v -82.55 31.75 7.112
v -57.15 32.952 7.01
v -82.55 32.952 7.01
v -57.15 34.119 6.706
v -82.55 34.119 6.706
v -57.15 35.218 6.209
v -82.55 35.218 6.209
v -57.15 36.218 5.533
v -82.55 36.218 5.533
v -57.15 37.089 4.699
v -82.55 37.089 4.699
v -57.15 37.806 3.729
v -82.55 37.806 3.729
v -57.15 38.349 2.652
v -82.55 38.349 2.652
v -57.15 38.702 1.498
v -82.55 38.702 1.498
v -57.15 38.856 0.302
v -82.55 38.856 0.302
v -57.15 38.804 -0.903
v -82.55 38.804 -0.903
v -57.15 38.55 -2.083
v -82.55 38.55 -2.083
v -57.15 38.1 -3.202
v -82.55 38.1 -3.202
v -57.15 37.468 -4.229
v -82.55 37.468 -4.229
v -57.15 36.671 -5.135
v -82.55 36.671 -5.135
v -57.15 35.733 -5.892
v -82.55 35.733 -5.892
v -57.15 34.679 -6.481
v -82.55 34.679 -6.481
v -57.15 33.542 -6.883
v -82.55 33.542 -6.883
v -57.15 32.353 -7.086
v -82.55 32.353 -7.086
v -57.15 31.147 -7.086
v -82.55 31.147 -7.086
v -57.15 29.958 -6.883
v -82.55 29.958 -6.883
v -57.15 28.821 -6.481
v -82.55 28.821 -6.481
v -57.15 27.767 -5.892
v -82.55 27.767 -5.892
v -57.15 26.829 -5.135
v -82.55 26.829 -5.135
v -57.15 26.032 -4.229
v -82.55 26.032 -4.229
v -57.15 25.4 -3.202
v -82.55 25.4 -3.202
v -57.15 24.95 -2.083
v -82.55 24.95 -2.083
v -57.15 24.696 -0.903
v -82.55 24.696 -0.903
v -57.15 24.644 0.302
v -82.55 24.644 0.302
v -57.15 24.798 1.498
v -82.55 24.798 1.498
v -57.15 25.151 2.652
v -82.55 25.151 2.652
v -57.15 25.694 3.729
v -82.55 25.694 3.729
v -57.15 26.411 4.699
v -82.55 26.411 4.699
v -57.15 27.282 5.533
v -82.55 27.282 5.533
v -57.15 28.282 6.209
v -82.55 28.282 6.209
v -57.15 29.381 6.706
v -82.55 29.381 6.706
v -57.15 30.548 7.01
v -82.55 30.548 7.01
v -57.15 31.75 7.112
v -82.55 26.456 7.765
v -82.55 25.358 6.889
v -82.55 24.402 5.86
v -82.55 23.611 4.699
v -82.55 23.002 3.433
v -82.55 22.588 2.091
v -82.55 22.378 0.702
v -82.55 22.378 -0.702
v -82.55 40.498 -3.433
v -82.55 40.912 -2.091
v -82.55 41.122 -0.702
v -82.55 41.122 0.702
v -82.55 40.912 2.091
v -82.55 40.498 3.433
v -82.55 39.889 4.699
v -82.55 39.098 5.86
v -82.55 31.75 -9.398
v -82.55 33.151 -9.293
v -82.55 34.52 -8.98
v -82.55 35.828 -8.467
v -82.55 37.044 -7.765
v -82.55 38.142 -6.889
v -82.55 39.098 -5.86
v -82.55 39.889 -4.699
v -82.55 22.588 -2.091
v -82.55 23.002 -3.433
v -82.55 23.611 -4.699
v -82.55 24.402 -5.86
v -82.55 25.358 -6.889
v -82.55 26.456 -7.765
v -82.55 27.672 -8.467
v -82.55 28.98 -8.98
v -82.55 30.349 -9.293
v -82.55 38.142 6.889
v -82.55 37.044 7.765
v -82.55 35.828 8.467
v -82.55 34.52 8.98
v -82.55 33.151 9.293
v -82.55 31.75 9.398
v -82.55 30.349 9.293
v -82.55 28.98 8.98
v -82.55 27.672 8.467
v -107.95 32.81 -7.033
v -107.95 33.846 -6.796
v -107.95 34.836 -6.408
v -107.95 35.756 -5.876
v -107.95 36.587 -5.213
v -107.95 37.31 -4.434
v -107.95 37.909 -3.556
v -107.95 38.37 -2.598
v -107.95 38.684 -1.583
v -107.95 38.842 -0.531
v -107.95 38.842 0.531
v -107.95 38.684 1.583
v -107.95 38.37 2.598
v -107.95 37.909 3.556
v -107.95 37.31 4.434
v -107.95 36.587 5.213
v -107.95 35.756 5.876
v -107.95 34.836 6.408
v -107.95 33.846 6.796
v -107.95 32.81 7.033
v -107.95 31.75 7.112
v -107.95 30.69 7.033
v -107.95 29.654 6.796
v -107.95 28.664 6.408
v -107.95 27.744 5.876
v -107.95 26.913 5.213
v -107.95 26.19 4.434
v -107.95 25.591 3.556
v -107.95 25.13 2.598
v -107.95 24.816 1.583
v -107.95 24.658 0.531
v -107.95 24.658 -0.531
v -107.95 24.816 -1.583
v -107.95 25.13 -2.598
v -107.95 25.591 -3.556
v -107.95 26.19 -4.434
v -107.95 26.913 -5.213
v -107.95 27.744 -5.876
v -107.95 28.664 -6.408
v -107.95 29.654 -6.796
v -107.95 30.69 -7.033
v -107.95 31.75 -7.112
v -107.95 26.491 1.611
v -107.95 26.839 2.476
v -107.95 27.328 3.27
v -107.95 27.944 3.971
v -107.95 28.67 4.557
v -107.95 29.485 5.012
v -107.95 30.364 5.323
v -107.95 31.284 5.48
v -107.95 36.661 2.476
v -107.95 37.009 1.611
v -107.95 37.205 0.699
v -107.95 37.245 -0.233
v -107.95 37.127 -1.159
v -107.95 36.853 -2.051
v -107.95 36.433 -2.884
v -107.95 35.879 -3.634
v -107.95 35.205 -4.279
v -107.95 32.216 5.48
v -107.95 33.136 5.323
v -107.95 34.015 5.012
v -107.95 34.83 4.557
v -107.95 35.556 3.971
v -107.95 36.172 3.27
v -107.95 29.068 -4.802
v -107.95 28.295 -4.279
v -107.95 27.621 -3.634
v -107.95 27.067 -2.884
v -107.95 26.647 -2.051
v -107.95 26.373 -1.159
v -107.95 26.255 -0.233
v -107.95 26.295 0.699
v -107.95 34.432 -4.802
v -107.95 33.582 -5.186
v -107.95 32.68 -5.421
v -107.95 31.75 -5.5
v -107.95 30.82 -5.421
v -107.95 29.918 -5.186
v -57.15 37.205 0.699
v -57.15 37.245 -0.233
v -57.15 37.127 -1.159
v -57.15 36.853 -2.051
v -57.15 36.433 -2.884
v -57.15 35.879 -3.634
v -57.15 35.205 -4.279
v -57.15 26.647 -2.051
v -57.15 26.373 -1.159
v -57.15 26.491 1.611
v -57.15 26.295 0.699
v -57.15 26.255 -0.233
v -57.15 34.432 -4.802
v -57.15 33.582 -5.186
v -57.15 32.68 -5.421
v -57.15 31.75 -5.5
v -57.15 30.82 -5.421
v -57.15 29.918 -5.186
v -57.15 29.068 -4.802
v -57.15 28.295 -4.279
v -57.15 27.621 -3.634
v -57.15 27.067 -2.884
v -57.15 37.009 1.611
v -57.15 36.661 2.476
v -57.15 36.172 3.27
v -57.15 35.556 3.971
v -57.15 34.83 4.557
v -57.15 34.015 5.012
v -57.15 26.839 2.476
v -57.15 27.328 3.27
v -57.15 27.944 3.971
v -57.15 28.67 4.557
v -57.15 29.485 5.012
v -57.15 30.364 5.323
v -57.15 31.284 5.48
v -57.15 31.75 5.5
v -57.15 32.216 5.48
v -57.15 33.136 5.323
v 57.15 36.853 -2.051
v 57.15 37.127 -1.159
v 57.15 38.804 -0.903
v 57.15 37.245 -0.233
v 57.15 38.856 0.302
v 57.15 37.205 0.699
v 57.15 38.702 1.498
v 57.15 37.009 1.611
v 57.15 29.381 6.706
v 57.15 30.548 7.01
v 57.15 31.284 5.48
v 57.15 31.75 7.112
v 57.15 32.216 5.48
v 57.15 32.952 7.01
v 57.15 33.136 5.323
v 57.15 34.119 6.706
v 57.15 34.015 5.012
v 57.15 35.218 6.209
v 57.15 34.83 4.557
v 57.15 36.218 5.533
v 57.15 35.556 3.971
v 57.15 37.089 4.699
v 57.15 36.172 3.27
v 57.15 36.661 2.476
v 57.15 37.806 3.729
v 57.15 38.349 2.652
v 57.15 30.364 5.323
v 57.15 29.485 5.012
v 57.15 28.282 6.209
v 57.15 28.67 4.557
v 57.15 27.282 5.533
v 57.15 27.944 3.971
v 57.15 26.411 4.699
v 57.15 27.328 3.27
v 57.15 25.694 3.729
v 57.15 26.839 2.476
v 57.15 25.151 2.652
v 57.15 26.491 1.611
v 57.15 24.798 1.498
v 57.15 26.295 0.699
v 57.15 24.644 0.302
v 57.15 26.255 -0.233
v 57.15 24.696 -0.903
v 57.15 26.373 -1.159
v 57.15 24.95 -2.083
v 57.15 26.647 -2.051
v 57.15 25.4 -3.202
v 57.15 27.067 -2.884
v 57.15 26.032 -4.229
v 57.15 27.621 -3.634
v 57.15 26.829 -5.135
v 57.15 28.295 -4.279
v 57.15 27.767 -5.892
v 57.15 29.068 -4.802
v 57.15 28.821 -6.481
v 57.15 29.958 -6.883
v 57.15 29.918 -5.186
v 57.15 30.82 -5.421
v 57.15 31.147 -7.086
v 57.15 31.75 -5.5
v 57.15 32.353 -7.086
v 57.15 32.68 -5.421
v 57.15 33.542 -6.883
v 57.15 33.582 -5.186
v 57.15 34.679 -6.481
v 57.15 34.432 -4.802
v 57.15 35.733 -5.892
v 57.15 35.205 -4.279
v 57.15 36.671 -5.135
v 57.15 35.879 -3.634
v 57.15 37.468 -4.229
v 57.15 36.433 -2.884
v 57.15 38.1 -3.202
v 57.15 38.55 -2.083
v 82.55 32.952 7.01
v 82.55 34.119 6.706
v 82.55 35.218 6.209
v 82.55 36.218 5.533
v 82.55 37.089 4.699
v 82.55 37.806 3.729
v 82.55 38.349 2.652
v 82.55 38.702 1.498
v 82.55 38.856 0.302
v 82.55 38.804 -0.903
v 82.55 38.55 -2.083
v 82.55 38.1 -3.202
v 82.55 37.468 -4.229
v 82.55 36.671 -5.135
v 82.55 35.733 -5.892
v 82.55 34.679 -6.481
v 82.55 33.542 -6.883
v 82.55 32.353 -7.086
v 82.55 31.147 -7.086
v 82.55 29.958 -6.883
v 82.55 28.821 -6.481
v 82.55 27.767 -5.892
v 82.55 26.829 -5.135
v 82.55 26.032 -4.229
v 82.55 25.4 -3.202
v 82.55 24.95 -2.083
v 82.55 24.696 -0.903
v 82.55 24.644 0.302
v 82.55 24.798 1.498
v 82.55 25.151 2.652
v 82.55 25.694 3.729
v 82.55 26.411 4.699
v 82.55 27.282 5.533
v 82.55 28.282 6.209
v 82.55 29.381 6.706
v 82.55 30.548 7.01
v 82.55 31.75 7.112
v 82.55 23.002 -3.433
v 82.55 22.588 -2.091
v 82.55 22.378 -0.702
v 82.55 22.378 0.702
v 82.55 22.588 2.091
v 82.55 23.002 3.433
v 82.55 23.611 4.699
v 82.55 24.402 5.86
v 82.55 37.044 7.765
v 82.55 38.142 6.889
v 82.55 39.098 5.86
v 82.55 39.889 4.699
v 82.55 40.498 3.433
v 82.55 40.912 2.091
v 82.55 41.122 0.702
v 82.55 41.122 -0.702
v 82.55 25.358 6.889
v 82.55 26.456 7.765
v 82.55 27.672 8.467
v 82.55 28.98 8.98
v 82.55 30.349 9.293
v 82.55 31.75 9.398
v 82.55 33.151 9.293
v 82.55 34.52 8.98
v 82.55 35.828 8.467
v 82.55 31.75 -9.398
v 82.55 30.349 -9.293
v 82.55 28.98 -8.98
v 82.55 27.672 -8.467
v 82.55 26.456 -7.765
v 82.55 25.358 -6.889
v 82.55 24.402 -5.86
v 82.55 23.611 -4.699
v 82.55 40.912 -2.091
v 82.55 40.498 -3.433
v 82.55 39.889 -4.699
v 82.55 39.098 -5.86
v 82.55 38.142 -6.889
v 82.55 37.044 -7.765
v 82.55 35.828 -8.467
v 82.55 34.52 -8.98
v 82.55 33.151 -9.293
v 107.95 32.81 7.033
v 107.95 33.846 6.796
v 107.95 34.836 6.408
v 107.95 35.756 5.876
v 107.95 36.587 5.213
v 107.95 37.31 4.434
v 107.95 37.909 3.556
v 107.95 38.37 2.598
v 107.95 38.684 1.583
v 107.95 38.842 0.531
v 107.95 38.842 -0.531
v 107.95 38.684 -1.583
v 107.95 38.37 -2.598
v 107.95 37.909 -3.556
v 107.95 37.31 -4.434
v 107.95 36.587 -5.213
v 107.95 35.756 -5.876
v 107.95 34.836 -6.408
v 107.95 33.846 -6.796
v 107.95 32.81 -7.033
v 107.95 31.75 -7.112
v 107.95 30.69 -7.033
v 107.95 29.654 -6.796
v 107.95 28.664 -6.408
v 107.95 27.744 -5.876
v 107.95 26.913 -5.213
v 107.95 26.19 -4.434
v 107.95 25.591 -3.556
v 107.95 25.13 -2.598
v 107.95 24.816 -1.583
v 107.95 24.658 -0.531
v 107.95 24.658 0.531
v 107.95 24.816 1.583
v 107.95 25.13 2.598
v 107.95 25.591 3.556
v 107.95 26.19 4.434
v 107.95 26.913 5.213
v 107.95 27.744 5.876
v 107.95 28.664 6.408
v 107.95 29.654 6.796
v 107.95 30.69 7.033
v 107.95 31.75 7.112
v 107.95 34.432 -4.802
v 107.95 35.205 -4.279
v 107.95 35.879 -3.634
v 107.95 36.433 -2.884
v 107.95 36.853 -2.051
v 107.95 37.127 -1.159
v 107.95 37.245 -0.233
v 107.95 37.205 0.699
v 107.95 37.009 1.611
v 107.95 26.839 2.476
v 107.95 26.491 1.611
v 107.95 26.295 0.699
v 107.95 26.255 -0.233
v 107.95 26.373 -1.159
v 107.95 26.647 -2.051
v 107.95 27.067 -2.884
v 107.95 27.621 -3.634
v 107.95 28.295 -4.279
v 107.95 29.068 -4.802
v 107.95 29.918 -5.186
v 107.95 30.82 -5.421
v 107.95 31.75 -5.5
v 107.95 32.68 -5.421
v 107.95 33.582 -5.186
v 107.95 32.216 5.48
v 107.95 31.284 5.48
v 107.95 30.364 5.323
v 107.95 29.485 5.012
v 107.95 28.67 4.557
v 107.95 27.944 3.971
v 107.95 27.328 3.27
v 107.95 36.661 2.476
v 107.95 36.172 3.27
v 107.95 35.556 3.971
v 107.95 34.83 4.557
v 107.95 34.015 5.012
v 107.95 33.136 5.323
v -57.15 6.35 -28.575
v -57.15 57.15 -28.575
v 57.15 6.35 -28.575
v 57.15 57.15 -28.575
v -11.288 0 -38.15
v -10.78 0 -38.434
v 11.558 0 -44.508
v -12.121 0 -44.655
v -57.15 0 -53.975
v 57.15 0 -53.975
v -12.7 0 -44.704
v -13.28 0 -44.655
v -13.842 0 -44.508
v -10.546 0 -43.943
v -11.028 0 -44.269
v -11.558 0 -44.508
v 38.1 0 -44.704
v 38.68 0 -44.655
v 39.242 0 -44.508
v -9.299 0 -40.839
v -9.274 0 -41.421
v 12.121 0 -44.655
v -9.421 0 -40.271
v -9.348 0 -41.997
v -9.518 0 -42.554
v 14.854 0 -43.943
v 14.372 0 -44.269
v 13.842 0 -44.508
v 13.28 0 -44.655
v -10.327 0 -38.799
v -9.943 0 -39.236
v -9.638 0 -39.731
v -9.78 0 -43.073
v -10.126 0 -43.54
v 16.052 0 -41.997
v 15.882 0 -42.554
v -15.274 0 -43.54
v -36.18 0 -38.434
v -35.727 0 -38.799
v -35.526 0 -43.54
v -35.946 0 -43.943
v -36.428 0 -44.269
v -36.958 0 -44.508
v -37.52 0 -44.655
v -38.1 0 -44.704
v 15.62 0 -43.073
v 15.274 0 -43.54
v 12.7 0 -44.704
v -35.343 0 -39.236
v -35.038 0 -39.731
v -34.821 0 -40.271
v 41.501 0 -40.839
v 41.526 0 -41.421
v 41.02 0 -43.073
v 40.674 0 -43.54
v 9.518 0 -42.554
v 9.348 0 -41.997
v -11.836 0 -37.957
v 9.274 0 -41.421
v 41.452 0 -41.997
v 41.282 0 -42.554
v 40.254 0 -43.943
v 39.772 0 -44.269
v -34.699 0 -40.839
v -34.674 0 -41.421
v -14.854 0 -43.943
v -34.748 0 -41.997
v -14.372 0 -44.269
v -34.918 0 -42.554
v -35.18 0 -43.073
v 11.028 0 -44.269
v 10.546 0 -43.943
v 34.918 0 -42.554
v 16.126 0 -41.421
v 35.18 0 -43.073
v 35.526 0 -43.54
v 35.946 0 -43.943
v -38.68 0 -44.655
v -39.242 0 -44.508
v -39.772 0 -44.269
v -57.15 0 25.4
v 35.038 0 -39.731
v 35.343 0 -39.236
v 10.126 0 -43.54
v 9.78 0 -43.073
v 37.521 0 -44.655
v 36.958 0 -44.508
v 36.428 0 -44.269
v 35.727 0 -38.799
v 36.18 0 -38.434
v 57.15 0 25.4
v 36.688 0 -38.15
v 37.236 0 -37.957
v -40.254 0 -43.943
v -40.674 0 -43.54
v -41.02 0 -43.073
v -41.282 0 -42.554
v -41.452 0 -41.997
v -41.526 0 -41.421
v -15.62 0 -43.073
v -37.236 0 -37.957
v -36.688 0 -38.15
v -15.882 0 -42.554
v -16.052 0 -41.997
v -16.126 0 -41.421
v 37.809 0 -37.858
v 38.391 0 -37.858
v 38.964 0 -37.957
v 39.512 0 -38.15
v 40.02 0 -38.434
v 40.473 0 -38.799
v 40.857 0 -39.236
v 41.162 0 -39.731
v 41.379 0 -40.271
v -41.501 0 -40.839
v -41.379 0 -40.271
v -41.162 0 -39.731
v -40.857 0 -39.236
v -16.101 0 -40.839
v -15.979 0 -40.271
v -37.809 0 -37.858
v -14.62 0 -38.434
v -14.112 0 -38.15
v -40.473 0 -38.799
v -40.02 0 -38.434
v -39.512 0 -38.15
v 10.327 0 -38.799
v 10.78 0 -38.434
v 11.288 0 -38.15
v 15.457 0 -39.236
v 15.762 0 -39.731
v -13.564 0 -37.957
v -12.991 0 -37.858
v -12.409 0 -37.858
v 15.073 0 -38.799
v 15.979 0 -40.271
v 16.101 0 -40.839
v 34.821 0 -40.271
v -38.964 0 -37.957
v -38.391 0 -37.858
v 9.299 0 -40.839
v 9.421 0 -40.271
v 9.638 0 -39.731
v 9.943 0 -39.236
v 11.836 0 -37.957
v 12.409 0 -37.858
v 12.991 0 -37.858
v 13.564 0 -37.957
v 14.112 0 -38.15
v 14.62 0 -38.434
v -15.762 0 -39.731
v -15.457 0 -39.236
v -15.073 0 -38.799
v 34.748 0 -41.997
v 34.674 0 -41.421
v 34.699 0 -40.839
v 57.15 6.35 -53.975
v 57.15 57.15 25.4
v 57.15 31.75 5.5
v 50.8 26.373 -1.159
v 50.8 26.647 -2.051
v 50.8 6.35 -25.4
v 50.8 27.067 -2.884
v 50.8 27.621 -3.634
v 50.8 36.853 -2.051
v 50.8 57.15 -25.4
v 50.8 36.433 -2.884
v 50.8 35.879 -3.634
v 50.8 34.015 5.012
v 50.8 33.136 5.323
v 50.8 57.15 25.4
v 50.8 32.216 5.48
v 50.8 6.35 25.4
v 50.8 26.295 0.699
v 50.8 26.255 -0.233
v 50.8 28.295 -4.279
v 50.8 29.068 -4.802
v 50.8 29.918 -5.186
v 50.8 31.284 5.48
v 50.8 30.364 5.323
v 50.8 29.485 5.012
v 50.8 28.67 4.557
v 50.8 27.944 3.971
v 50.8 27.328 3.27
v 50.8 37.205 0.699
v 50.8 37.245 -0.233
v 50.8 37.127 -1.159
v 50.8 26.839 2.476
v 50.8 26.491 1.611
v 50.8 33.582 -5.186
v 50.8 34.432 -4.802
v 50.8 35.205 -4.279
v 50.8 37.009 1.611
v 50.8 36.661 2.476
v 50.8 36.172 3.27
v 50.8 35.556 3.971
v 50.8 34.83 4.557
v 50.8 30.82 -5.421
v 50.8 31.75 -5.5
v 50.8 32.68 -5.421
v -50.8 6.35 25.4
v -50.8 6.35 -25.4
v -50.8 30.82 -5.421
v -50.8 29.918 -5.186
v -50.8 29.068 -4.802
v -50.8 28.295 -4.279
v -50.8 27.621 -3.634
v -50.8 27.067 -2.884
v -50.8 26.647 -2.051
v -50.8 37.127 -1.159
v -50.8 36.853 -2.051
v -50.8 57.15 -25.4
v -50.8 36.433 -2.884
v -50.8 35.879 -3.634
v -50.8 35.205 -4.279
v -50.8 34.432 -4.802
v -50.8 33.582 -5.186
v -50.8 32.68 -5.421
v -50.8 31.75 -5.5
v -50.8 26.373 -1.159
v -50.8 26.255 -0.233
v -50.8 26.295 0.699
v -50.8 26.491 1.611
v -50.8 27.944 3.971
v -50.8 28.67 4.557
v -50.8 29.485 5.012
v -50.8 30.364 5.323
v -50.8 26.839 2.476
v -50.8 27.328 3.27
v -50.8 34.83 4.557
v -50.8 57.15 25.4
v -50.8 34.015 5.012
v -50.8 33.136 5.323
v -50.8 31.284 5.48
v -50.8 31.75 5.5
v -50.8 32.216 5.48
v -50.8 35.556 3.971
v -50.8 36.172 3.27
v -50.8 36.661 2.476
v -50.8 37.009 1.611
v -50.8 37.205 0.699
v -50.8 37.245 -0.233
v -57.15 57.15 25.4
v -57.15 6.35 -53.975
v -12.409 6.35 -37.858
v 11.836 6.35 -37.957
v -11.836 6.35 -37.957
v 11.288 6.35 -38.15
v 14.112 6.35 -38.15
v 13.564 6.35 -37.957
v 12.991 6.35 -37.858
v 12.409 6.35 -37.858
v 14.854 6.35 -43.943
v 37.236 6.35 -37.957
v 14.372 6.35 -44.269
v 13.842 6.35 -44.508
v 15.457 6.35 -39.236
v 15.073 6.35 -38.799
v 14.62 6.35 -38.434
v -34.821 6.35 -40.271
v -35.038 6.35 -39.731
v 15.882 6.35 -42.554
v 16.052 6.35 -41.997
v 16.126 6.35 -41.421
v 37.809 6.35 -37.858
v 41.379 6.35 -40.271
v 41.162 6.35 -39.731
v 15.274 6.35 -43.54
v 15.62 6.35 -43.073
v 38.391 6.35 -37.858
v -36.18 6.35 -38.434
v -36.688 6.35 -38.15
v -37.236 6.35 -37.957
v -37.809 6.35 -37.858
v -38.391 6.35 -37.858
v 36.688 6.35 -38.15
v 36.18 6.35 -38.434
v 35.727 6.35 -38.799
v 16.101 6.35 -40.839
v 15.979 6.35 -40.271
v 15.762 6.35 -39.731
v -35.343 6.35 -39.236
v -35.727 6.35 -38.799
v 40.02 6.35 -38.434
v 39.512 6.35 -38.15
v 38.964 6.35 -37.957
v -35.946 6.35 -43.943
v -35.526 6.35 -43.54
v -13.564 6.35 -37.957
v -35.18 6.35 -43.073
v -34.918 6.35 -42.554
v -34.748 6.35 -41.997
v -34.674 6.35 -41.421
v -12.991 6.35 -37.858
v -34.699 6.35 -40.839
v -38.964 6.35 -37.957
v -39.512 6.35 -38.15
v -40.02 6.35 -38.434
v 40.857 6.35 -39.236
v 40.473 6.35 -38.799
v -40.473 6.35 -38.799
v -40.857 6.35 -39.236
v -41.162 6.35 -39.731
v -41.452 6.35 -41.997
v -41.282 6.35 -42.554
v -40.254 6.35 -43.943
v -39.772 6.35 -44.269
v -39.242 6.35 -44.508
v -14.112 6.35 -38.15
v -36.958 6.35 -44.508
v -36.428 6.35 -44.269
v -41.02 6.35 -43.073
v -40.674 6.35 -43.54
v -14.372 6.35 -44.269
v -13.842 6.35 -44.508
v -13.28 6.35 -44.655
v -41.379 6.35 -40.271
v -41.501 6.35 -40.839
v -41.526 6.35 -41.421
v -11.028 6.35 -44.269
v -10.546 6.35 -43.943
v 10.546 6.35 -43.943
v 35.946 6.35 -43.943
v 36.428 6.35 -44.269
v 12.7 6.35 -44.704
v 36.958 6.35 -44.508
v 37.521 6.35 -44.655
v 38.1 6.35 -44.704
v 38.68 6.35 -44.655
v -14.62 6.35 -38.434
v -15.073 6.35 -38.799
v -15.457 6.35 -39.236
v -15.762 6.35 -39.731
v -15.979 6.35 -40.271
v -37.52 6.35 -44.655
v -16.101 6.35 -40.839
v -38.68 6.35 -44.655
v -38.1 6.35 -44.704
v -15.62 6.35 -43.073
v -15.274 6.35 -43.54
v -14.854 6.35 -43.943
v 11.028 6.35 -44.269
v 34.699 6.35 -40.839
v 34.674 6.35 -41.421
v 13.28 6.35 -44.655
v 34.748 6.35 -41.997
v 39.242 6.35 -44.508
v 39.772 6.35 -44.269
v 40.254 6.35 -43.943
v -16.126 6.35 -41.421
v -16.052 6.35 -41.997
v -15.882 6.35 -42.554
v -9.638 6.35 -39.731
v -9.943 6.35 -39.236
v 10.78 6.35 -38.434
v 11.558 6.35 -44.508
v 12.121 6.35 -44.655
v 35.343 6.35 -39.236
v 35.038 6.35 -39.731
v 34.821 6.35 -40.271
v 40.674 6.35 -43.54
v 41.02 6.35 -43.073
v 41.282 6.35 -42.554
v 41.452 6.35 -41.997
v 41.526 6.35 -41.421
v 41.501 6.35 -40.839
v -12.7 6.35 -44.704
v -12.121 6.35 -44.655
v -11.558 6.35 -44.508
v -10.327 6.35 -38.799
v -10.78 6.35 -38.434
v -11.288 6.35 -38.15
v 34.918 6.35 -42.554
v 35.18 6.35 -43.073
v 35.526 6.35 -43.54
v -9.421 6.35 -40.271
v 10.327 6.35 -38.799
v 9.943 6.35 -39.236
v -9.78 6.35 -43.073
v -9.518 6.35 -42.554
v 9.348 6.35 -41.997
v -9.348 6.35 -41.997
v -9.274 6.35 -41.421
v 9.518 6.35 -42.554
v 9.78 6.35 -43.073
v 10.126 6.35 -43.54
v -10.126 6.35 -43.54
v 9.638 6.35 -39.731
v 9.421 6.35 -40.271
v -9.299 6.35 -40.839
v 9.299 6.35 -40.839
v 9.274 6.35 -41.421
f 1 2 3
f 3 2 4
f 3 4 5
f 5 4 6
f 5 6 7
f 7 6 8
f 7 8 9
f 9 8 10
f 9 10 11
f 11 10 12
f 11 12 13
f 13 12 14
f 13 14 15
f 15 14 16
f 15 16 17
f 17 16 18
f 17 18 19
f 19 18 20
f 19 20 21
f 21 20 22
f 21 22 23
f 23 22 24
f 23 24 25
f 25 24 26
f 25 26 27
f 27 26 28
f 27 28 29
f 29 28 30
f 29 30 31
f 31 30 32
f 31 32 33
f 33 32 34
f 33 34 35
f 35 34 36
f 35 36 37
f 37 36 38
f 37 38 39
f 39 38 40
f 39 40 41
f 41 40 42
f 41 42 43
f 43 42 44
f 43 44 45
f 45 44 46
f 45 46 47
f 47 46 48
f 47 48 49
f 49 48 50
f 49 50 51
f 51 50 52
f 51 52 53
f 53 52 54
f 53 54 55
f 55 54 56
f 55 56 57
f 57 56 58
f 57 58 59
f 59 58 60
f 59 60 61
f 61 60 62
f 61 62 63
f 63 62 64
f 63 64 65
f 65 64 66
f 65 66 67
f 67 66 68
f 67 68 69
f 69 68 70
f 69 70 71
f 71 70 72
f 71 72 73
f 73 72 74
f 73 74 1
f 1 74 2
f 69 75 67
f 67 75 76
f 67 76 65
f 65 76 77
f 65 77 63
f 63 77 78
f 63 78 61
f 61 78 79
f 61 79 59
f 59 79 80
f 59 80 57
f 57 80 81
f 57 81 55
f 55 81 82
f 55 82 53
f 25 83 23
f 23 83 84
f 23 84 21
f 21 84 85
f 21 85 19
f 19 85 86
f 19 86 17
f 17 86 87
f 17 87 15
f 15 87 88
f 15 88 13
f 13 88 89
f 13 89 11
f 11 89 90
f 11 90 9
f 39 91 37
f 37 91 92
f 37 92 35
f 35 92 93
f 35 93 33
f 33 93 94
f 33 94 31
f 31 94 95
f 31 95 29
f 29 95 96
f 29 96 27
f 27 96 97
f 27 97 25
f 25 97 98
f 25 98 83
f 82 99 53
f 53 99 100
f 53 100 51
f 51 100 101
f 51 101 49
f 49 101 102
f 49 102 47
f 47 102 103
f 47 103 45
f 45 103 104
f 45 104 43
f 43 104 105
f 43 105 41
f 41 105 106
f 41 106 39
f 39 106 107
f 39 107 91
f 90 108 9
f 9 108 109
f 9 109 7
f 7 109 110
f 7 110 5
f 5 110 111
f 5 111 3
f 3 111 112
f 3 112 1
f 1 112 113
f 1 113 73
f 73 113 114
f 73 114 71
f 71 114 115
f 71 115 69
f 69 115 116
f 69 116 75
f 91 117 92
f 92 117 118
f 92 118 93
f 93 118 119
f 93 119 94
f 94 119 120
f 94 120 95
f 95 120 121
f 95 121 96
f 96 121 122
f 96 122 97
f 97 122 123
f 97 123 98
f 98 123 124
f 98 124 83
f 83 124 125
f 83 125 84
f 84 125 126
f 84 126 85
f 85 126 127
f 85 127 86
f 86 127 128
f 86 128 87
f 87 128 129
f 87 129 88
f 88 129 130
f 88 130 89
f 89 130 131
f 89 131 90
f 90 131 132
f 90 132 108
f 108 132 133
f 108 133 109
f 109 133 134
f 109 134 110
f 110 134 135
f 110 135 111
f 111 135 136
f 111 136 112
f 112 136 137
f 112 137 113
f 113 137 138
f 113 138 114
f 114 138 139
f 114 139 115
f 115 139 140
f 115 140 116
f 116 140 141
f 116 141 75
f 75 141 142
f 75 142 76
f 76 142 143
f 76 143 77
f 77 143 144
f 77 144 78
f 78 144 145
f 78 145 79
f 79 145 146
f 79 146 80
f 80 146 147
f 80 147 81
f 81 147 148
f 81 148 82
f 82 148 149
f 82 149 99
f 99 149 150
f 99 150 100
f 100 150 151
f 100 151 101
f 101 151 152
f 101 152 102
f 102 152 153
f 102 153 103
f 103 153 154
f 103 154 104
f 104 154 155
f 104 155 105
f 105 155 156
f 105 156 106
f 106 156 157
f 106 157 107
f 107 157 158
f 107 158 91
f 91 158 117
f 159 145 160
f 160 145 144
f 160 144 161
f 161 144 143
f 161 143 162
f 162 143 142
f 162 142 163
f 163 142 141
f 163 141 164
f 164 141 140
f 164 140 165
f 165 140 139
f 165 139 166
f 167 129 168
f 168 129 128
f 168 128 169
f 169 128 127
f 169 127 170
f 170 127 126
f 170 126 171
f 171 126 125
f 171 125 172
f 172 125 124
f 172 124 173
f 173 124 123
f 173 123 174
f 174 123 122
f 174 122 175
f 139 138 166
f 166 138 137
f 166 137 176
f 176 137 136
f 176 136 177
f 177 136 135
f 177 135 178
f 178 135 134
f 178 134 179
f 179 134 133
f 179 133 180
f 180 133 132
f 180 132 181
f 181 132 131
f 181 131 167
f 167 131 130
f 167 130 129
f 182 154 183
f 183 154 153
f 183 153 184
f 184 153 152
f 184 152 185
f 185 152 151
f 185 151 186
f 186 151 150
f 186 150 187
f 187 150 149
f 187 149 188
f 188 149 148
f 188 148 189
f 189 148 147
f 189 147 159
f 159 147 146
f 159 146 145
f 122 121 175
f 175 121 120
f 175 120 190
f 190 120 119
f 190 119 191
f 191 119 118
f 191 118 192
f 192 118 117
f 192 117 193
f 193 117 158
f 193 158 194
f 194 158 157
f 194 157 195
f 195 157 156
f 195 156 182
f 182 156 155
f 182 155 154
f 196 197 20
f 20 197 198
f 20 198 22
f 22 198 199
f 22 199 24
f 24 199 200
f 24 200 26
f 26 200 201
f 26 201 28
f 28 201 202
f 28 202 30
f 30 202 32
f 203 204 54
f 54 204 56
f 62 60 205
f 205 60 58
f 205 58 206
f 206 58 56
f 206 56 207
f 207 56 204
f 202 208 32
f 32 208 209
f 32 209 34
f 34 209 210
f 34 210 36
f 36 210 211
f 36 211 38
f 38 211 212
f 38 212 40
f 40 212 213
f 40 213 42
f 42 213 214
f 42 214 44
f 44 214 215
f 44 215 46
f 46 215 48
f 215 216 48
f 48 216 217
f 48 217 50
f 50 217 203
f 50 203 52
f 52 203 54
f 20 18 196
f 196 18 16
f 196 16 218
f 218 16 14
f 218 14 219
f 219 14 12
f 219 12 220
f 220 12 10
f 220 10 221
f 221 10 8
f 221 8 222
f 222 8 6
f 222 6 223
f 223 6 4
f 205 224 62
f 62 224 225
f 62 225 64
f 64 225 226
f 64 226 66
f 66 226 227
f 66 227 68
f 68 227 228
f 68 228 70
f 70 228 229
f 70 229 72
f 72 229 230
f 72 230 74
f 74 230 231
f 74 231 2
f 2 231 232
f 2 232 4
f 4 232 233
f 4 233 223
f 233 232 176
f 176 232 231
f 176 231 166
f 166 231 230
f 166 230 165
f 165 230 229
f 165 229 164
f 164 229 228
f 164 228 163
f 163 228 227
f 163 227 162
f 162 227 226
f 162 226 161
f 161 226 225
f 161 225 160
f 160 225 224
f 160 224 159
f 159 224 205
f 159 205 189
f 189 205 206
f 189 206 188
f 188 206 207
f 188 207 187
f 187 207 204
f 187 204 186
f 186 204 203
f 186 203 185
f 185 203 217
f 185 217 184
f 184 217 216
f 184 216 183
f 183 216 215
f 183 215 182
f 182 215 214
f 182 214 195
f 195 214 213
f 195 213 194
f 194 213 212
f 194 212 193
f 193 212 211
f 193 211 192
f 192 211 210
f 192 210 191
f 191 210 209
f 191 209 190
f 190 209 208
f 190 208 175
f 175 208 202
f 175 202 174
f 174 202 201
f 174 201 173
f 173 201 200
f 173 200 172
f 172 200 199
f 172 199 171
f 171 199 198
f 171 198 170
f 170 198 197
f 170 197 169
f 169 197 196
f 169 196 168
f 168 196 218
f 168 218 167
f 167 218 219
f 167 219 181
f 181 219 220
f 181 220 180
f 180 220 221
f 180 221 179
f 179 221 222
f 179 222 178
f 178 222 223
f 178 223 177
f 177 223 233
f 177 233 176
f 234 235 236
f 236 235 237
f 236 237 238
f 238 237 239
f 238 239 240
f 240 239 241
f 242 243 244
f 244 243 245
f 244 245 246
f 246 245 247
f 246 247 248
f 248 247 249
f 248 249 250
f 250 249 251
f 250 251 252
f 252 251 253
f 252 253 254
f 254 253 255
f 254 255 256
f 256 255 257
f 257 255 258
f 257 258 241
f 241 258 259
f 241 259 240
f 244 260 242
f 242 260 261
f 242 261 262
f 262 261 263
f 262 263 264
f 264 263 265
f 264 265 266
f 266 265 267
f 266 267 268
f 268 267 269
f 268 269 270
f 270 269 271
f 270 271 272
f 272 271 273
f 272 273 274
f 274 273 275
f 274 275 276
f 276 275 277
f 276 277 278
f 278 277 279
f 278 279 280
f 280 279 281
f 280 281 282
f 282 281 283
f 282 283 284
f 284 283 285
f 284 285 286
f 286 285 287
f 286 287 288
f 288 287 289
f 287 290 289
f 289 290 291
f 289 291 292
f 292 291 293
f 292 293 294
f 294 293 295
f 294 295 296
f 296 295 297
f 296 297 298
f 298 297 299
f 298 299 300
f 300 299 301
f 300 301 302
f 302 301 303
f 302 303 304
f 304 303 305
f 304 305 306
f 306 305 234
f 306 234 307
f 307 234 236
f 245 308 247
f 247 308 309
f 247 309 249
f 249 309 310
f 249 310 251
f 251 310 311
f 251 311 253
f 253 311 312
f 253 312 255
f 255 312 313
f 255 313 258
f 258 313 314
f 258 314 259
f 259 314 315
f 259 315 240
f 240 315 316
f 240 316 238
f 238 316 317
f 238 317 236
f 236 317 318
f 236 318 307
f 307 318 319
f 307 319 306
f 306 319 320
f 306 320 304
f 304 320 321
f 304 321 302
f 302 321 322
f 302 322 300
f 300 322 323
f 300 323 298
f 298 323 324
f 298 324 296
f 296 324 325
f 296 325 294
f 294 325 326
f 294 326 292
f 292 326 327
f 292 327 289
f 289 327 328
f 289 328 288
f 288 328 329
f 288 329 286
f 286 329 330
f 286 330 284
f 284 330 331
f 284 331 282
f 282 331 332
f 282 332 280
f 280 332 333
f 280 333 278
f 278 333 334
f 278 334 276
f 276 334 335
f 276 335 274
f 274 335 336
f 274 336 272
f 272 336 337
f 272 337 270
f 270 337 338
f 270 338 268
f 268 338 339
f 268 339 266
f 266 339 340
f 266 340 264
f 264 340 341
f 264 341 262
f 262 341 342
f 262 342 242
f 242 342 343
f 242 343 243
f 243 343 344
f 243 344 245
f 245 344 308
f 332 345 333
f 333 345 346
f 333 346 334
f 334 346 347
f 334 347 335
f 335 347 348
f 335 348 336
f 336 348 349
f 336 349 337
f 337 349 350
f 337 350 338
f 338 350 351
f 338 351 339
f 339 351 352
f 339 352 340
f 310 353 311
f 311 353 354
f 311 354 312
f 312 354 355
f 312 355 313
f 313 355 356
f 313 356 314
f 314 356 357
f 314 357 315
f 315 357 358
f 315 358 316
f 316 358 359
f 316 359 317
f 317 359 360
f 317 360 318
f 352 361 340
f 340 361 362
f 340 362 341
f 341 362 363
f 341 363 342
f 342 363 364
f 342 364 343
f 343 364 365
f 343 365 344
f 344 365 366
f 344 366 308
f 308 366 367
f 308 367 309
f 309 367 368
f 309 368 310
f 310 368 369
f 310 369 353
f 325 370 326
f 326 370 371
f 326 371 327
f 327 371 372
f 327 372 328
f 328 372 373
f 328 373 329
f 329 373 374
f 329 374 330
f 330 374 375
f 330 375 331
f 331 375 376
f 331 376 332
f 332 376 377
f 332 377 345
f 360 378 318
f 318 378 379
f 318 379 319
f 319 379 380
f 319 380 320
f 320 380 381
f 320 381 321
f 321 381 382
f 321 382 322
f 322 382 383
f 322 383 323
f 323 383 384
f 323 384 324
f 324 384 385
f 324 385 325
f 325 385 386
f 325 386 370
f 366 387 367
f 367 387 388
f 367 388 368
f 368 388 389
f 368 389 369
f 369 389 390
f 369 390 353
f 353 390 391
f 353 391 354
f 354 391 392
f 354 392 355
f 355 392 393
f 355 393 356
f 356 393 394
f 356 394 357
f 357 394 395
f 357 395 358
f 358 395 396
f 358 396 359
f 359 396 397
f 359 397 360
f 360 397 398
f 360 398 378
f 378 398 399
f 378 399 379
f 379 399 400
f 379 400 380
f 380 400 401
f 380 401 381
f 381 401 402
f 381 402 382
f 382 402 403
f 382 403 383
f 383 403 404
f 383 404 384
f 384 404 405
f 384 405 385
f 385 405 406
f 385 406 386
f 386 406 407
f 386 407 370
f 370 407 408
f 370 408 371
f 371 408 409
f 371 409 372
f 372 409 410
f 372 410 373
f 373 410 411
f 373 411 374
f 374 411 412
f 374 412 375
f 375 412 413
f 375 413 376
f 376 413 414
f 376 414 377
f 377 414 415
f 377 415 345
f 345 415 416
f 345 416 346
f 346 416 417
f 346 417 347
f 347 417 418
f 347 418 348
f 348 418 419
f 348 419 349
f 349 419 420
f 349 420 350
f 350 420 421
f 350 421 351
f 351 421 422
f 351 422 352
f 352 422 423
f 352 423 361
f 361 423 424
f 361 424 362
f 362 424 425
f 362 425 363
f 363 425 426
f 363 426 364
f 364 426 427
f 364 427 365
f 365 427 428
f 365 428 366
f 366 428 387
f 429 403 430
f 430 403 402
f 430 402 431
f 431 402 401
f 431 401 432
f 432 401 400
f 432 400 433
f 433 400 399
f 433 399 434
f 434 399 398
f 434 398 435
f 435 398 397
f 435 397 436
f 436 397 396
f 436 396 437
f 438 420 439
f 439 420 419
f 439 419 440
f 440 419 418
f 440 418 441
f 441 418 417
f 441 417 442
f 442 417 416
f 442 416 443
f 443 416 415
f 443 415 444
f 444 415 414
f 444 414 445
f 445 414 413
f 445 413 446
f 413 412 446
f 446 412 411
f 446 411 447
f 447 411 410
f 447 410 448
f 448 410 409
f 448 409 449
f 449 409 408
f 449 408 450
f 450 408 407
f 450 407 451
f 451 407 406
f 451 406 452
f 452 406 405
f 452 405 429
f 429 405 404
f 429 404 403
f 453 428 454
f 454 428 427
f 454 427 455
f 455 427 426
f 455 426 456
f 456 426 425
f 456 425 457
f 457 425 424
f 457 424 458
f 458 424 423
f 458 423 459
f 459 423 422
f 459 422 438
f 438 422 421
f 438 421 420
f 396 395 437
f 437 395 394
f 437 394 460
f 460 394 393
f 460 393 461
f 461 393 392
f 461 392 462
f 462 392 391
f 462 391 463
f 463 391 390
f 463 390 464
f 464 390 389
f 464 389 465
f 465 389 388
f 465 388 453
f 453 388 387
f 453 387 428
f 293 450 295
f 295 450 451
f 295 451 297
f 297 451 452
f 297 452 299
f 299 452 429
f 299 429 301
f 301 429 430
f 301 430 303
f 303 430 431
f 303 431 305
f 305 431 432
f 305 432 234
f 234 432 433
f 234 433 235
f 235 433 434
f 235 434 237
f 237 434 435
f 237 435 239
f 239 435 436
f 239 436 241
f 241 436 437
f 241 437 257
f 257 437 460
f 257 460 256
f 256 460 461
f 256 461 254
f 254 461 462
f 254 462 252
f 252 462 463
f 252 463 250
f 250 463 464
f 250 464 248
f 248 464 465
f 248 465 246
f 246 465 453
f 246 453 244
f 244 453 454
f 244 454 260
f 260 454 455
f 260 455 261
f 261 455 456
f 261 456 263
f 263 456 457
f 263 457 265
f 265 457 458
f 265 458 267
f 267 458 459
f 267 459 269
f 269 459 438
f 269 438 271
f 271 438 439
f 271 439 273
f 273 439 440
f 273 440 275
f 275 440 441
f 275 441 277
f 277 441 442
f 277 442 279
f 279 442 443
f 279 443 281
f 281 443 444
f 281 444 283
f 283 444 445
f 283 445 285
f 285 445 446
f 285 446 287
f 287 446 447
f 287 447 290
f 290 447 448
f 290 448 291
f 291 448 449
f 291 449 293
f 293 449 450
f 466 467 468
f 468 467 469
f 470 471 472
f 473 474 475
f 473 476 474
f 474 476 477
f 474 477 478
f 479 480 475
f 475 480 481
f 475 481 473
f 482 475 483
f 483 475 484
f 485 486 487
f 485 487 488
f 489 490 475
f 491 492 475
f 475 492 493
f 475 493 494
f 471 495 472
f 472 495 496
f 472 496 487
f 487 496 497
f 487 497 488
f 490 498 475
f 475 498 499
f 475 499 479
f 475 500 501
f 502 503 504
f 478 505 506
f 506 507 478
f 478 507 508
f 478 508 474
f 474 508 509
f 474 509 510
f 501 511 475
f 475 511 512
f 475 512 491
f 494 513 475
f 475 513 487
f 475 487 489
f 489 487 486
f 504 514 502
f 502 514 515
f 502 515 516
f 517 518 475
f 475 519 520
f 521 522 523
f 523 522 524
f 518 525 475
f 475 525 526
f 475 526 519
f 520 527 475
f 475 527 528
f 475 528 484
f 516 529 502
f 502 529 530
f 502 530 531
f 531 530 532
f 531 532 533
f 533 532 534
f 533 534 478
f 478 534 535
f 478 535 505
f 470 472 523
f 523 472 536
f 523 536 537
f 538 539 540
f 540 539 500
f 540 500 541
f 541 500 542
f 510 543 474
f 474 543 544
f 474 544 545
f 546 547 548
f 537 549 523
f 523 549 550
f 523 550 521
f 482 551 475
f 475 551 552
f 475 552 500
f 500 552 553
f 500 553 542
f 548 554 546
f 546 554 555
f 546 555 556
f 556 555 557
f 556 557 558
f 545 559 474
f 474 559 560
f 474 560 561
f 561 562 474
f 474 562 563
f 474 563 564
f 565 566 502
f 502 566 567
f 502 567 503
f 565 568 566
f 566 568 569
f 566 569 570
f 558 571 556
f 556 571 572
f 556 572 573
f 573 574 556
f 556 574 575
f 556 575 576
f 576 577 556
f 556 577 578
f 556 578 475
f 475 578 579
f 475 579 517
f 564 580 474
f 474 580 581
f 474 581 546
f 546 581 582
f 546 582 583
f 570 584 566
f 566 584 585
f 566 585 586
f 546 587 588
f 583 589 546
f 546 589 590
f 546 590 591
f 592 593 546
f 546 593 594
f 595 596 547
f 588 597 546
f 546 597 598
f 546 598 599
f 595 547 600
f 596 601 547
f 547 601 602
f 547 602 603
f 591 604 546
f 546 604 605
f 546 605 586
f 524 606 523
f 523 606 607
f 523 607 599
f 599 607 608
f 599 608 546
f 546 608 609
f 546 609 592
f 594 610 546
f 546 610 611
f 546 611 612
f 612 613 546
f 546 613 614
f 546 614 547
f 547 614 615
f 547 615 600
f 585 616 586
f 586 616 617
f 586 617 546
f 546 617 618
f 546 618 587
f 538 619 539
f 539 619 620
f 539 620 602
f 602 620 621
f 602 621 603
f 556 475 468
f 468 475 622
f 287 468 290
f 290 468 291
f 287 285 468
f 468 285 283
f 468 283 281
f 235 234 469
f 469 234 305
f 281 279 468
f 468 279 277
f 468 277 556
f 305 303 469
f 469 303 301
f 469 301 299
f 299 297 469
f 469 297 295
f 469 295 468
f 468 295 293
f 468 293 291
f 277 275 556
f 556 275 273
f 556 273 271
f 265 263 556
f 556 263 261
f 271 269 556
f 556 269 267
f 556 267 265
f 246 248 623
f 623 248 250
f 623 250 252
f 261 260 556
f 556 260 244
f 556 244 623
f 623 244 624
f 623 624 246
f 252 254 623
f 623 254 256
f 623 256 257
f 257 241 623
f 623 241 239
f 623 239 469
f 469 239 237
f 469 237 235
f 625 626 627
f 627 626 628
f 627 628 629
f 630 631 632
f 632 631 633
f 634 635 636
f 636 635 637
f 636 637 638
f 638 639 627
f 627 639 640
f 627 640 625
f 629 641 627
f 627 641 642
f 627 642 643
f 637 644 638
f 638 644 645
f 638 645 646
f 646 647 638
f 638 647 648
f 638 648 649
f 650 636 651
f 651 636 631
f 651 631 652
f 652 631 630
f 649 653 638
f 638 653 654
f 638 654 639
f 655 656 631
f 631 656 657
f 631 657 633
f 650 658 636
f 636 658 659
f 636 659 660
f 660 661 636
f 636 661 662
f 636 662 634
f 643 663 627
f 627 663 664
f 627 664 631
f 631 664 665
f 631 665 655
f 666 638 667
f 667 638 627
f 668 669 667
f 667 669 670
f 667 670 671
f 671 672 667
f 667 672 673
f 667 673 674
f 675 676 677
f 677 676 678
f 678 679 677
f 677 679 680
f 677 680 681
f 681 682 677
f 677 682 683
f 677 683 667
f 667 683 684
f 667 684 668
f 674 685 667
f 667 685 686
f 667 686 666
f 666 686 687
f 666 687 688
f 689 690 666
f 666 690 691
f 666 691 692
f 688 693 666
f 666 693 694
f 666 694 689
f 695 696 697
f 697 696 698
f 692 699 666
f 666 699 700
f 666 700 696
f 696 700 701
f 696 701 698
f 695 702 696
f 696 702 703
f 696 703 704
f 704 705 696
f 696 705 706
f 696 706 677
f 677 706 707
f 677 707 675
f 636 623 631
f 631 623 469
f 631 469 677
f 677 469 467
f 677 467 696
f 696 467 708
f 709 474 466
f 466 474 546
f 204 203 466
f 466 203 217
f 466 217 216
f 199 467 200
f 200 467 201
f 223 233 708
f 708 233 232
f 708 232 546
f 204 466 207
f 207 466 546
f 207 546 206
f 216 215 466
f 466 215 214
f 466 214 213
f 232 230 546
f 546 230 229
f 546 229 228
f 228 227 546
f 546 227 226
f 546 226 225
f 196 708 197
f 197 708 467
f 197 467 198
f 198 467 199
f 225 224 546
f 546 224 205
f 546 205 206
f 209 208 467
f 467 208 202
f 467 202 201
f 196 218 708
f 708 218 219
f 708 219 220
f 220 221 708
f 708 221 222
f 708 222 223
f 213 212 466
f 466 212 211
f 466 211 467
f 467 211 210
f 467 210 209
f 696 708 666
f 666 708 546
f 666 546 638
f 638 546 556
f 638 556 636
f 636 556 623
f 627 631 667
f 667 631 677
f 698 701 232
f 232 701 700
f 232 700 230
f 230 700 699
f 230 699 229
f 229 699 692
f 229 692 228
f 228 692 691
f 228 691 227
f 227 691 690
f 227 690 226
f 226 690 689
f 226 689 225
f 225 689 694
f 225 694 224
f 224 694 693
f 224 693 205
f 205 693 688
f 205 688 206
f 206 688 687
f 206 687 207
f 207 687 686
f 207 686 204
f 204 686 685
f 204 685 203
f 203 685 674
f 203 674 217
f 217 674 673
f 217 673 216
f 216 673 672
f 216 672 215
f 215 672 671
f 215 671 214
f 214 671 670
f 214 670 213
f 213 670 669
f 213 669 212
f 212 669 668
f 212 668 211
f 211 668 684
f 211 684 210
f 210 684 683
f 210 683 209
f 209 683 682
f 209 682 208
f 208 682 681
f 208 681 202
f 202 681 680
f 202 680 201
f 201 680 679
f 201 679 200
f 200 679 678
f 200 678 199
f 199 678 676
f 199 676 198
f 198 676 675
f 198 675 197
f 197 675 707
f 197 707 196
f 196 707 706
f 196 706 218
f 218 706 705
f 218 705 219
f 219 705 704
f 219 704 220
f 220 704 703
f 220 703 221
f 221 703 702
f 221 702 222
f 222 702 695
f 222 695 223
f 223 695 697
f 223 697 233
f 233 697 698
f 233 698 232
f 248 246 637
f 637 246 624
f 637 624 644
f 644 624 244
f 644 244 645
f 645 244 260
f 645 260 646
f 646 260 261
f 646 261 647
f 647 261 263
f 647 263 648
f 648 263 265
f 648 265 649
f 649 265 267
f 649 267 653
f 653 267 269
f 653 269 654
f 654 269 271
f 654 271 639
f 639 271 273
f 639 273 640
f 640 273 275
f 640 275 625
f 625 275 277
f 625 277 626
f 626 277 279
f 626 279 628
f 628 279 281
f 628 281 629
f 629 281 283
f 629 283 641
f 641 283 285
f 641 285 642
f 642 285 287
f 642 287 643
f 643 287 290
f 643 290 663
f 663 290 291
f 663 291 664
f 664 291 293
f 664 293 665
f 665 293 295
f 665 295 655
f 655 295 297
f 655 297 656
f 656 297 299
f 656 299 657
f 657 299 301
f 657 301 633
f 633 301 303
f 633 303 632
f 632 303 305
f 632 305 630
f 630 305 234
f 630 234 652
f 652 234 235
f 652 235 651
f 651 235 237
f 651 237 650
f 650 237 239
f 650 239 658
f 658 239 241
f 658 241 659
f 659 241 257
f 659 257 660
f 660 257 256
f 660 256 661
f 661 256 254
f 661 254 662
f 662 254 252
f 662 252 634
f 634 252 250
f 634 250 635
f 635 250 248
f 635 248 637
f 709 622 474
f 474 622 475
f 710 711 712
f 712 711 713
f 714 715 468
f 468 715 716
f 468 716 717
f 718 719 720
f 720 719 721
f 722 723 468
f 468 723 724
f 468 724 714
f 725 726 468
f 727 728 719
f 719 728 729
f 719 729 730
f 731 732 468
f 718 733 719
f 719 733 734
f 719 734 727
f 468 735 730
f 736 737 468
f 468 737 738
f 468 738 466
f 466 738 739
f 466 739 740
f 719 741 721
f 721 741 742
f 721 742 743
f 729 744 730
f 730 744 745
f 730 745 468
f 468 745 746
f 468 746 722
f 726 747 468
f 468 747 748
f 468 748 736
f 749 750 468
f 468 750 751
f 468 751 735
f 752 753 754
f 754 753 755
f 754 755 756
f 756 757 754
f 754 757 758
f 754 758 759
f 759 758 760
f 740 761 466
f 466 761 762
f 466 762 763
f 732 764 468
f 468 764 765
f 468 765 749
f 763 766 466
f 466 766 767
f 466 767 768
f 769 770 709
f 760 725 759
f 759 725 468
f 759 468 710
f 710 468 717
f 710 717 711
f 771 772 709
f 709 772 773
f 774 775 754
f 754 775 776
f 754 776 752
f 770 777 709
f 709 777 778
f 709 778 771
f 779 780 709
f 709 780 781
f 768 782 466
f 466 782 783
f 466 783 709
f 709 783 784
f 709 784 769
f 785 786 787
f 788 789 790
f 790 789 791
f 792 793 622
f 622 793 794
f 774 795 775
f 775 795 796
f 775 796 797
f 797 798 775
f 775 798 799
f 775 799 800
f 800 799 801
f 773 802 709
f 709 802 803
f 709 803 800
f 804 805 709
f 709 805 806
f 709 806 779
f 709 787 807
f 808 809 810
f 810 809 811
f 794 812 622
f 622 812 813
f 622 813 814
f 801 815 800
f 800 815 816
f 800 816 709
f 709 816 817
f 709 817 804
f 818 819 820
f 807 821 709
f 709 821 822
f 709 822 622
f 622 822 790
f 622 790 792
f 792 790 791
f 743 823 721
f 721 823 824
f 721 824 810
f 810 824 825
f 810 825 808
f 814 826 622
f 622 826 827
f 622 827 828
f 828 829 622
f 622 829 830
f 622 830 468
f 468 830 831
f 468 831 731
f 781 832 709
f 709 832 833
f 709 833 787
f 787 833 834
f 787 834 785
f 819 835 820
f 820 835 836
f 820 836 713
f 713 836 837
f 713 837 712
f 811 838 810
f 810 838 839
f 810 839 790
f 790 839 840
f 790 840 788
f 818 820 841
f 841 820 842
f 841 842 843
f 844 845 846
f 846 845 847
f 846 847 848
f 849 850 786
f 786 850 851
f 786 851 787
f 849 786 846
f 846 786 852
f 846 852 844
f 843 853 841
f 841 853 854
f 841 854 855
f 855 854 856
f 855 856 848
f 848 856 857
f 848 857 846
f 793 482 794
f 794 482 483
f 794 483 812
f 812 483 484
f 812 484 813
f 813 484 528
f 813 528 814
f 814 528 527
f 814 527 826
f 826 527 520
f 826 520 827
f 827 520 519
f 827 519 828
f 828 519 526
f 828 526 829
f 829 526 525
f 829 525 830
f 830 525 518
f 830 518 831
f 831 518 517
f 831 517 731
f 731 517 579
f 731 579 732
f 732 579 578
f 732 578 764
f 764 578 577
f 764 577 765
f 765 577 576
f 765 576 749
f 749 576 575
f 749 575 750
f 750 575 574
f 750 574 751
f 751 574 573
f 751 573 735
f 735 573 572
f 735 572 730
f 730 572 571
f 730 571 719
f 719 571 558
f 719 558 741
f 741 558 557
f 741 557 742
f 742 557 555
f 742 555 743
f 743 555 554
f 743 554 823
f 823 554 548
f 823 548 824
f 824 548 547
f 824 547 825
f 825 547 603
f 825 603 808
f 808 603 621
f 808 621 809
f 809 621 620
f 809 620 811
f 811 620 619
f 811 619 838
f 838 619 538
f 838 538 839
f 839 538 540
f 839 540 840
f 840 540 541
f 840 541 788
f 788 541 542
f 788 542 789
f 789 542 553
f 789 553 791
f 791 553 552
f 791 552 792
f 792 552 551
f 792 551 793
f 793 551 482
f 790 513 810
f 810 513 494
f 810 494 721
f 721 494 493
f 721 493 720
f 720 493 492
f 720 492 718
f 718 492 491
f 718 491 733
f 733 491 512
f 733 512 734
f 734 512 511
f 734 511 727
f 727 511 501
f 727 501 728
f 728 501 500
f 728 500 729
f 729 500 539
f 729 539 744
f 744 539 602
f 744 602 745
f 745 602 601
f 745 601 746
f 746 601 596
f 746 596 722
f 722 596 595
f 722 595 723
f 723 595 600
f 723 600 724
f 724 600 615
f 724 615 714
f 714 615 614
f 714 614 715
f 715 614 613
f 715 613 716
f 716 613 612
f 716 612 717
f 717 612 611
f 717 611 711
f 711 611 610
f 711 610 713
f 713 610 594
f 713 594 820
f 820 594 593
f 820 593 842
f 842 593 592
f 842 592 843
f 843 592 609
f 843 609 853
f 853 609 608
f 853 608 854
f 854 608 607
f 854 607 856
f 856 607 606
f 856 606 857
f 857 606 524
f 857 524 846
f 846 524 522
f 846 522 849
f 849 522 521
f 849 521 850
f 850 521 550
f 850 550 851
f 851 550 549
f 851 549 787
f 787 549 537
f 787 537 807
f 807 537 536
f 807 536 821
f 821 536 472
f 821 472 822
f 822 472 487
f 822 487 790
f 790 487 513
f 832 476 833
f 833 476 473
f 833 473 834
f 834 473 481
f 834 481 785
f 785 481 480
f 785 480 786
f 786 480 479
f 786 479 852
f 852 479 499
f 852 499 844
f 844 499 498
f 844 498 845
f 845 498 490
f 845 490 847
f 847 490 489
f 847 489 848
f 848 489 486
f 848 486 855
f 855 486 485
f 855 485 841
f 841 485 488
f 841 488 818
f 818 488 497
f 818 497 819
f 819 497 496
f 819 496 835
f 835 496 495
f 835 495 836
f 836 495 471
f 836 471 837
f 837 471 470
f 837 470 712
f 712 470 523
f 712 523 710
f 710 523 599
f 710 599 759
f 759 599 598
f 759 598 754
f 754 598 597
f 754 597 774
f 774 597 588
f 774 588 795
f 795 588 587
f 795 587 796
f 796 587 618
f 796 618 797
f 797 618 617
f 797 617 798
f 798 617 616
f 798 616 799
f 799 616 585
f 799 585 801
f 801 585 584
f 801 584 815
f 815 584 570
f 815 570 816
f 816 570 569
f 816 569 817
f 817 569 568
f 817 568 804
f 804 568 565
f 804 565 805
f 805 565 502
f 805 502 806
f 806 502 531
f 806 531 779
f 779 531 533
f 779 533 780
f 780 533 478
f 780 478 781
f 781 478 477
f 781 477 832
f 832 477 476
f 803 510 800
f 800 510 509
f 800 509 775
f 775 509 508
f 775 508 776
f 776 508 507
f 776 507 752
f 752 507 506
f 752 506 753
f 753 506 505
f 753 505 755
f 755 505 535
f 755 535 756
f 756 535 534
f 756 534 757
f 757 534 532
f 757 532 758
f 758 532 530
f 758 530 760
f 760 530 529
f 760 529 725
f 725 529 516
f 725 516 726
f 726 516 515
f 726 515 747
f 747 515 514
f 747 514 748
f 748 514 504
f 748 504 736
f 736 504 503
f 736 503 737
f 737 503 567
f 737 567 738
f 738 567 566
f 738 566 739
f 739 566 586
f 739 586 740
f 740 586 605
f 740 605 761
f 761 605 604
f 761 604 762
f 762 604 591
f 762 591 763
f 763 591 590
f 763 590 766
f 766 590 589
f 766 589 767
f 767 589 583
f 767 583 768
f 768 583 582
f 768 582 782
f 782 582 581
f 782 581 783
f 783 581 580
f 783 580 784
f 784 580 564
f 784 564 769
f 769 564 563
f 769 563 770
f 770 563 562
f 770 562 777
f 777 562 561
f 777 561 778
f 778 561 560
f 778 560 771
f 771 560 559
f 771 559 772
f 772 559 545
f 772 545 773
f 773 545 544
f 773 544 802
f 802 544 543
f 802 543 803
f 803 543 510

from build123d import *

# Parameters (mm, degrees)
BOSS_EXTRUDE1_DEPTH     = 25.4
SKETCH2_W               = 114.3
SKETCH2_H               = 57.15
BOSS_EXTRUDE2_DEPTH     = 3.175
CUT_EXTRUDE2_DEPTH      = 126.442638784
CUT_EXTRUDE2_DEPTH_BACK = 126.442638784
SKETCH3_R               = 5.5
SKETCH5_W               = 114.3
SKETCH5_H               = 25.4
SKETCH5_R               = 3.429
BOSS_EXTRUDE3_DEPTH     = 6.35


with BuildPart() as part:
    # Sketch1 → Boss-Extrude1 (new, symmetric)
    with BuildSketch(Plane.XY):
        Polygon((-57.15, 0), (57.15, 0), (57.15, 6.35), (57.15, 57.15), (50.8, 57.15), (50.8, 6.35), (-50.8, 6.35), (-50.8, 57.15), (-57.15, 57.15), (-57.15, 6.35), align=None)
    extrude(amount=BOSS_EXTRUDE1_DEPTH, both=True)

    # Sketch2 → Boss-Extrude2 (add)
    with BuildSketch(Plane(origin=(0, 0, -25.4), x_dir=(-1, 0, 0), z_dir=(0, 0, -1))):
        with Locations((0, 28.575)):
            Rectangle(SKETCH2_W, SKETCH2_H)
    extrude(amount=BOSS_EXTRUDE2_DEPTH)


with BuildPart() as body_2:
    # Sketch4 → Revolve1 (revolve)
    with BuildSketch(Plane.XY, mode=Mode.PRIVATE) as revolve1_sk:
        Polygon((57.15, 35.687), (57.15, 38.862), (82.55, 38.862), (82.55, 41.148), (107.95, 38.862), (107.95, 35.687), align=None)
        Polygon((-57.15, 38.862), (-82.55, 38.862), (-82.55, 41.148), (-107.95, 38.862), (-107.95, 35.687), (-107.95, 31.75), (-57.15, 31.75), (-57.15, 35.687), align=None)
    revolve(revolve1_sk.sketch.rotate(Axis((-76.2, 31.75, 0), (1, 0, 0)), 90), axis=Axis((-76.2, 31.75, 0), (1, 0, 0)))


with BuildPart() as cut_extrude2_tool:
    # Sketch3 → Cut-Extrude2 (new, two sides: drawn at the far end of the back side and taken through both)
    with BuildSketch(Plane(origin=(0, 0, 0), x_dir=(0, 0, -1), z_dir=(1, 0, 0)).offset(-CUT_EXTRUDE2_DEPTH_BACK)):
        with Locations((0, 31.75)):
            Circle(SKETCH3_R)
    extrude(amount=CUT_EXTRUDE2_DEPTH + CUT_EXTRUDE2_DEPTH_BACK)


with BuildPart() as part_1:
    add(part.part)

    # Cut-Extrude2: cut by cut_extrude2_tool
    add(cut_extrude2_tool.part, mode=Mode.SUBTRACT)

    # Sketch5 → Boss-Extrude3 (add)
    with BuildSketch(Plane(origin=(0, 0, 0), x_dir=(-1, 0, 0), z_dir=(0, -1, 0))):
        with Locations((0, 41.275)):
            Rectangle(SKETCH5_W, SKETCH5_H)
        with Locations(Location((-38.1, 41.275, 0), (0, 0, 90))):
            Circle(SKETCH5_R, mode=Mode.SUBTRACT)
        with Locations(Location((-12.7, 41.275, 0), (0, 0, 90))):
            Circle(SKETCH5_R, mode=Mode.SUBTRACT)
        with Locations(Location((12.7, 41.275, 0), (0, 0, 90))):
            Circle(SKETCH5_R, mode=Mode.SUBTRACT)
        with Locations(Location((38.1, 41.275, 0), (0, 0, 90))):
            Circle(SKETCH5_R, mode=Mode.SUBTRACT)
    extrude(amount=-BOSS_EXTRUDE3_DEPTH)


with BuildPart() as body_2_1:
    add(body_2.part)

    # Cut-Extrude2: cut by cut_extrude2_tool
    add(cut_extrude2_tool.part, mode=Mode.SUBTRACT)


solid = Compound([part_1.part, body_2_1.part])
